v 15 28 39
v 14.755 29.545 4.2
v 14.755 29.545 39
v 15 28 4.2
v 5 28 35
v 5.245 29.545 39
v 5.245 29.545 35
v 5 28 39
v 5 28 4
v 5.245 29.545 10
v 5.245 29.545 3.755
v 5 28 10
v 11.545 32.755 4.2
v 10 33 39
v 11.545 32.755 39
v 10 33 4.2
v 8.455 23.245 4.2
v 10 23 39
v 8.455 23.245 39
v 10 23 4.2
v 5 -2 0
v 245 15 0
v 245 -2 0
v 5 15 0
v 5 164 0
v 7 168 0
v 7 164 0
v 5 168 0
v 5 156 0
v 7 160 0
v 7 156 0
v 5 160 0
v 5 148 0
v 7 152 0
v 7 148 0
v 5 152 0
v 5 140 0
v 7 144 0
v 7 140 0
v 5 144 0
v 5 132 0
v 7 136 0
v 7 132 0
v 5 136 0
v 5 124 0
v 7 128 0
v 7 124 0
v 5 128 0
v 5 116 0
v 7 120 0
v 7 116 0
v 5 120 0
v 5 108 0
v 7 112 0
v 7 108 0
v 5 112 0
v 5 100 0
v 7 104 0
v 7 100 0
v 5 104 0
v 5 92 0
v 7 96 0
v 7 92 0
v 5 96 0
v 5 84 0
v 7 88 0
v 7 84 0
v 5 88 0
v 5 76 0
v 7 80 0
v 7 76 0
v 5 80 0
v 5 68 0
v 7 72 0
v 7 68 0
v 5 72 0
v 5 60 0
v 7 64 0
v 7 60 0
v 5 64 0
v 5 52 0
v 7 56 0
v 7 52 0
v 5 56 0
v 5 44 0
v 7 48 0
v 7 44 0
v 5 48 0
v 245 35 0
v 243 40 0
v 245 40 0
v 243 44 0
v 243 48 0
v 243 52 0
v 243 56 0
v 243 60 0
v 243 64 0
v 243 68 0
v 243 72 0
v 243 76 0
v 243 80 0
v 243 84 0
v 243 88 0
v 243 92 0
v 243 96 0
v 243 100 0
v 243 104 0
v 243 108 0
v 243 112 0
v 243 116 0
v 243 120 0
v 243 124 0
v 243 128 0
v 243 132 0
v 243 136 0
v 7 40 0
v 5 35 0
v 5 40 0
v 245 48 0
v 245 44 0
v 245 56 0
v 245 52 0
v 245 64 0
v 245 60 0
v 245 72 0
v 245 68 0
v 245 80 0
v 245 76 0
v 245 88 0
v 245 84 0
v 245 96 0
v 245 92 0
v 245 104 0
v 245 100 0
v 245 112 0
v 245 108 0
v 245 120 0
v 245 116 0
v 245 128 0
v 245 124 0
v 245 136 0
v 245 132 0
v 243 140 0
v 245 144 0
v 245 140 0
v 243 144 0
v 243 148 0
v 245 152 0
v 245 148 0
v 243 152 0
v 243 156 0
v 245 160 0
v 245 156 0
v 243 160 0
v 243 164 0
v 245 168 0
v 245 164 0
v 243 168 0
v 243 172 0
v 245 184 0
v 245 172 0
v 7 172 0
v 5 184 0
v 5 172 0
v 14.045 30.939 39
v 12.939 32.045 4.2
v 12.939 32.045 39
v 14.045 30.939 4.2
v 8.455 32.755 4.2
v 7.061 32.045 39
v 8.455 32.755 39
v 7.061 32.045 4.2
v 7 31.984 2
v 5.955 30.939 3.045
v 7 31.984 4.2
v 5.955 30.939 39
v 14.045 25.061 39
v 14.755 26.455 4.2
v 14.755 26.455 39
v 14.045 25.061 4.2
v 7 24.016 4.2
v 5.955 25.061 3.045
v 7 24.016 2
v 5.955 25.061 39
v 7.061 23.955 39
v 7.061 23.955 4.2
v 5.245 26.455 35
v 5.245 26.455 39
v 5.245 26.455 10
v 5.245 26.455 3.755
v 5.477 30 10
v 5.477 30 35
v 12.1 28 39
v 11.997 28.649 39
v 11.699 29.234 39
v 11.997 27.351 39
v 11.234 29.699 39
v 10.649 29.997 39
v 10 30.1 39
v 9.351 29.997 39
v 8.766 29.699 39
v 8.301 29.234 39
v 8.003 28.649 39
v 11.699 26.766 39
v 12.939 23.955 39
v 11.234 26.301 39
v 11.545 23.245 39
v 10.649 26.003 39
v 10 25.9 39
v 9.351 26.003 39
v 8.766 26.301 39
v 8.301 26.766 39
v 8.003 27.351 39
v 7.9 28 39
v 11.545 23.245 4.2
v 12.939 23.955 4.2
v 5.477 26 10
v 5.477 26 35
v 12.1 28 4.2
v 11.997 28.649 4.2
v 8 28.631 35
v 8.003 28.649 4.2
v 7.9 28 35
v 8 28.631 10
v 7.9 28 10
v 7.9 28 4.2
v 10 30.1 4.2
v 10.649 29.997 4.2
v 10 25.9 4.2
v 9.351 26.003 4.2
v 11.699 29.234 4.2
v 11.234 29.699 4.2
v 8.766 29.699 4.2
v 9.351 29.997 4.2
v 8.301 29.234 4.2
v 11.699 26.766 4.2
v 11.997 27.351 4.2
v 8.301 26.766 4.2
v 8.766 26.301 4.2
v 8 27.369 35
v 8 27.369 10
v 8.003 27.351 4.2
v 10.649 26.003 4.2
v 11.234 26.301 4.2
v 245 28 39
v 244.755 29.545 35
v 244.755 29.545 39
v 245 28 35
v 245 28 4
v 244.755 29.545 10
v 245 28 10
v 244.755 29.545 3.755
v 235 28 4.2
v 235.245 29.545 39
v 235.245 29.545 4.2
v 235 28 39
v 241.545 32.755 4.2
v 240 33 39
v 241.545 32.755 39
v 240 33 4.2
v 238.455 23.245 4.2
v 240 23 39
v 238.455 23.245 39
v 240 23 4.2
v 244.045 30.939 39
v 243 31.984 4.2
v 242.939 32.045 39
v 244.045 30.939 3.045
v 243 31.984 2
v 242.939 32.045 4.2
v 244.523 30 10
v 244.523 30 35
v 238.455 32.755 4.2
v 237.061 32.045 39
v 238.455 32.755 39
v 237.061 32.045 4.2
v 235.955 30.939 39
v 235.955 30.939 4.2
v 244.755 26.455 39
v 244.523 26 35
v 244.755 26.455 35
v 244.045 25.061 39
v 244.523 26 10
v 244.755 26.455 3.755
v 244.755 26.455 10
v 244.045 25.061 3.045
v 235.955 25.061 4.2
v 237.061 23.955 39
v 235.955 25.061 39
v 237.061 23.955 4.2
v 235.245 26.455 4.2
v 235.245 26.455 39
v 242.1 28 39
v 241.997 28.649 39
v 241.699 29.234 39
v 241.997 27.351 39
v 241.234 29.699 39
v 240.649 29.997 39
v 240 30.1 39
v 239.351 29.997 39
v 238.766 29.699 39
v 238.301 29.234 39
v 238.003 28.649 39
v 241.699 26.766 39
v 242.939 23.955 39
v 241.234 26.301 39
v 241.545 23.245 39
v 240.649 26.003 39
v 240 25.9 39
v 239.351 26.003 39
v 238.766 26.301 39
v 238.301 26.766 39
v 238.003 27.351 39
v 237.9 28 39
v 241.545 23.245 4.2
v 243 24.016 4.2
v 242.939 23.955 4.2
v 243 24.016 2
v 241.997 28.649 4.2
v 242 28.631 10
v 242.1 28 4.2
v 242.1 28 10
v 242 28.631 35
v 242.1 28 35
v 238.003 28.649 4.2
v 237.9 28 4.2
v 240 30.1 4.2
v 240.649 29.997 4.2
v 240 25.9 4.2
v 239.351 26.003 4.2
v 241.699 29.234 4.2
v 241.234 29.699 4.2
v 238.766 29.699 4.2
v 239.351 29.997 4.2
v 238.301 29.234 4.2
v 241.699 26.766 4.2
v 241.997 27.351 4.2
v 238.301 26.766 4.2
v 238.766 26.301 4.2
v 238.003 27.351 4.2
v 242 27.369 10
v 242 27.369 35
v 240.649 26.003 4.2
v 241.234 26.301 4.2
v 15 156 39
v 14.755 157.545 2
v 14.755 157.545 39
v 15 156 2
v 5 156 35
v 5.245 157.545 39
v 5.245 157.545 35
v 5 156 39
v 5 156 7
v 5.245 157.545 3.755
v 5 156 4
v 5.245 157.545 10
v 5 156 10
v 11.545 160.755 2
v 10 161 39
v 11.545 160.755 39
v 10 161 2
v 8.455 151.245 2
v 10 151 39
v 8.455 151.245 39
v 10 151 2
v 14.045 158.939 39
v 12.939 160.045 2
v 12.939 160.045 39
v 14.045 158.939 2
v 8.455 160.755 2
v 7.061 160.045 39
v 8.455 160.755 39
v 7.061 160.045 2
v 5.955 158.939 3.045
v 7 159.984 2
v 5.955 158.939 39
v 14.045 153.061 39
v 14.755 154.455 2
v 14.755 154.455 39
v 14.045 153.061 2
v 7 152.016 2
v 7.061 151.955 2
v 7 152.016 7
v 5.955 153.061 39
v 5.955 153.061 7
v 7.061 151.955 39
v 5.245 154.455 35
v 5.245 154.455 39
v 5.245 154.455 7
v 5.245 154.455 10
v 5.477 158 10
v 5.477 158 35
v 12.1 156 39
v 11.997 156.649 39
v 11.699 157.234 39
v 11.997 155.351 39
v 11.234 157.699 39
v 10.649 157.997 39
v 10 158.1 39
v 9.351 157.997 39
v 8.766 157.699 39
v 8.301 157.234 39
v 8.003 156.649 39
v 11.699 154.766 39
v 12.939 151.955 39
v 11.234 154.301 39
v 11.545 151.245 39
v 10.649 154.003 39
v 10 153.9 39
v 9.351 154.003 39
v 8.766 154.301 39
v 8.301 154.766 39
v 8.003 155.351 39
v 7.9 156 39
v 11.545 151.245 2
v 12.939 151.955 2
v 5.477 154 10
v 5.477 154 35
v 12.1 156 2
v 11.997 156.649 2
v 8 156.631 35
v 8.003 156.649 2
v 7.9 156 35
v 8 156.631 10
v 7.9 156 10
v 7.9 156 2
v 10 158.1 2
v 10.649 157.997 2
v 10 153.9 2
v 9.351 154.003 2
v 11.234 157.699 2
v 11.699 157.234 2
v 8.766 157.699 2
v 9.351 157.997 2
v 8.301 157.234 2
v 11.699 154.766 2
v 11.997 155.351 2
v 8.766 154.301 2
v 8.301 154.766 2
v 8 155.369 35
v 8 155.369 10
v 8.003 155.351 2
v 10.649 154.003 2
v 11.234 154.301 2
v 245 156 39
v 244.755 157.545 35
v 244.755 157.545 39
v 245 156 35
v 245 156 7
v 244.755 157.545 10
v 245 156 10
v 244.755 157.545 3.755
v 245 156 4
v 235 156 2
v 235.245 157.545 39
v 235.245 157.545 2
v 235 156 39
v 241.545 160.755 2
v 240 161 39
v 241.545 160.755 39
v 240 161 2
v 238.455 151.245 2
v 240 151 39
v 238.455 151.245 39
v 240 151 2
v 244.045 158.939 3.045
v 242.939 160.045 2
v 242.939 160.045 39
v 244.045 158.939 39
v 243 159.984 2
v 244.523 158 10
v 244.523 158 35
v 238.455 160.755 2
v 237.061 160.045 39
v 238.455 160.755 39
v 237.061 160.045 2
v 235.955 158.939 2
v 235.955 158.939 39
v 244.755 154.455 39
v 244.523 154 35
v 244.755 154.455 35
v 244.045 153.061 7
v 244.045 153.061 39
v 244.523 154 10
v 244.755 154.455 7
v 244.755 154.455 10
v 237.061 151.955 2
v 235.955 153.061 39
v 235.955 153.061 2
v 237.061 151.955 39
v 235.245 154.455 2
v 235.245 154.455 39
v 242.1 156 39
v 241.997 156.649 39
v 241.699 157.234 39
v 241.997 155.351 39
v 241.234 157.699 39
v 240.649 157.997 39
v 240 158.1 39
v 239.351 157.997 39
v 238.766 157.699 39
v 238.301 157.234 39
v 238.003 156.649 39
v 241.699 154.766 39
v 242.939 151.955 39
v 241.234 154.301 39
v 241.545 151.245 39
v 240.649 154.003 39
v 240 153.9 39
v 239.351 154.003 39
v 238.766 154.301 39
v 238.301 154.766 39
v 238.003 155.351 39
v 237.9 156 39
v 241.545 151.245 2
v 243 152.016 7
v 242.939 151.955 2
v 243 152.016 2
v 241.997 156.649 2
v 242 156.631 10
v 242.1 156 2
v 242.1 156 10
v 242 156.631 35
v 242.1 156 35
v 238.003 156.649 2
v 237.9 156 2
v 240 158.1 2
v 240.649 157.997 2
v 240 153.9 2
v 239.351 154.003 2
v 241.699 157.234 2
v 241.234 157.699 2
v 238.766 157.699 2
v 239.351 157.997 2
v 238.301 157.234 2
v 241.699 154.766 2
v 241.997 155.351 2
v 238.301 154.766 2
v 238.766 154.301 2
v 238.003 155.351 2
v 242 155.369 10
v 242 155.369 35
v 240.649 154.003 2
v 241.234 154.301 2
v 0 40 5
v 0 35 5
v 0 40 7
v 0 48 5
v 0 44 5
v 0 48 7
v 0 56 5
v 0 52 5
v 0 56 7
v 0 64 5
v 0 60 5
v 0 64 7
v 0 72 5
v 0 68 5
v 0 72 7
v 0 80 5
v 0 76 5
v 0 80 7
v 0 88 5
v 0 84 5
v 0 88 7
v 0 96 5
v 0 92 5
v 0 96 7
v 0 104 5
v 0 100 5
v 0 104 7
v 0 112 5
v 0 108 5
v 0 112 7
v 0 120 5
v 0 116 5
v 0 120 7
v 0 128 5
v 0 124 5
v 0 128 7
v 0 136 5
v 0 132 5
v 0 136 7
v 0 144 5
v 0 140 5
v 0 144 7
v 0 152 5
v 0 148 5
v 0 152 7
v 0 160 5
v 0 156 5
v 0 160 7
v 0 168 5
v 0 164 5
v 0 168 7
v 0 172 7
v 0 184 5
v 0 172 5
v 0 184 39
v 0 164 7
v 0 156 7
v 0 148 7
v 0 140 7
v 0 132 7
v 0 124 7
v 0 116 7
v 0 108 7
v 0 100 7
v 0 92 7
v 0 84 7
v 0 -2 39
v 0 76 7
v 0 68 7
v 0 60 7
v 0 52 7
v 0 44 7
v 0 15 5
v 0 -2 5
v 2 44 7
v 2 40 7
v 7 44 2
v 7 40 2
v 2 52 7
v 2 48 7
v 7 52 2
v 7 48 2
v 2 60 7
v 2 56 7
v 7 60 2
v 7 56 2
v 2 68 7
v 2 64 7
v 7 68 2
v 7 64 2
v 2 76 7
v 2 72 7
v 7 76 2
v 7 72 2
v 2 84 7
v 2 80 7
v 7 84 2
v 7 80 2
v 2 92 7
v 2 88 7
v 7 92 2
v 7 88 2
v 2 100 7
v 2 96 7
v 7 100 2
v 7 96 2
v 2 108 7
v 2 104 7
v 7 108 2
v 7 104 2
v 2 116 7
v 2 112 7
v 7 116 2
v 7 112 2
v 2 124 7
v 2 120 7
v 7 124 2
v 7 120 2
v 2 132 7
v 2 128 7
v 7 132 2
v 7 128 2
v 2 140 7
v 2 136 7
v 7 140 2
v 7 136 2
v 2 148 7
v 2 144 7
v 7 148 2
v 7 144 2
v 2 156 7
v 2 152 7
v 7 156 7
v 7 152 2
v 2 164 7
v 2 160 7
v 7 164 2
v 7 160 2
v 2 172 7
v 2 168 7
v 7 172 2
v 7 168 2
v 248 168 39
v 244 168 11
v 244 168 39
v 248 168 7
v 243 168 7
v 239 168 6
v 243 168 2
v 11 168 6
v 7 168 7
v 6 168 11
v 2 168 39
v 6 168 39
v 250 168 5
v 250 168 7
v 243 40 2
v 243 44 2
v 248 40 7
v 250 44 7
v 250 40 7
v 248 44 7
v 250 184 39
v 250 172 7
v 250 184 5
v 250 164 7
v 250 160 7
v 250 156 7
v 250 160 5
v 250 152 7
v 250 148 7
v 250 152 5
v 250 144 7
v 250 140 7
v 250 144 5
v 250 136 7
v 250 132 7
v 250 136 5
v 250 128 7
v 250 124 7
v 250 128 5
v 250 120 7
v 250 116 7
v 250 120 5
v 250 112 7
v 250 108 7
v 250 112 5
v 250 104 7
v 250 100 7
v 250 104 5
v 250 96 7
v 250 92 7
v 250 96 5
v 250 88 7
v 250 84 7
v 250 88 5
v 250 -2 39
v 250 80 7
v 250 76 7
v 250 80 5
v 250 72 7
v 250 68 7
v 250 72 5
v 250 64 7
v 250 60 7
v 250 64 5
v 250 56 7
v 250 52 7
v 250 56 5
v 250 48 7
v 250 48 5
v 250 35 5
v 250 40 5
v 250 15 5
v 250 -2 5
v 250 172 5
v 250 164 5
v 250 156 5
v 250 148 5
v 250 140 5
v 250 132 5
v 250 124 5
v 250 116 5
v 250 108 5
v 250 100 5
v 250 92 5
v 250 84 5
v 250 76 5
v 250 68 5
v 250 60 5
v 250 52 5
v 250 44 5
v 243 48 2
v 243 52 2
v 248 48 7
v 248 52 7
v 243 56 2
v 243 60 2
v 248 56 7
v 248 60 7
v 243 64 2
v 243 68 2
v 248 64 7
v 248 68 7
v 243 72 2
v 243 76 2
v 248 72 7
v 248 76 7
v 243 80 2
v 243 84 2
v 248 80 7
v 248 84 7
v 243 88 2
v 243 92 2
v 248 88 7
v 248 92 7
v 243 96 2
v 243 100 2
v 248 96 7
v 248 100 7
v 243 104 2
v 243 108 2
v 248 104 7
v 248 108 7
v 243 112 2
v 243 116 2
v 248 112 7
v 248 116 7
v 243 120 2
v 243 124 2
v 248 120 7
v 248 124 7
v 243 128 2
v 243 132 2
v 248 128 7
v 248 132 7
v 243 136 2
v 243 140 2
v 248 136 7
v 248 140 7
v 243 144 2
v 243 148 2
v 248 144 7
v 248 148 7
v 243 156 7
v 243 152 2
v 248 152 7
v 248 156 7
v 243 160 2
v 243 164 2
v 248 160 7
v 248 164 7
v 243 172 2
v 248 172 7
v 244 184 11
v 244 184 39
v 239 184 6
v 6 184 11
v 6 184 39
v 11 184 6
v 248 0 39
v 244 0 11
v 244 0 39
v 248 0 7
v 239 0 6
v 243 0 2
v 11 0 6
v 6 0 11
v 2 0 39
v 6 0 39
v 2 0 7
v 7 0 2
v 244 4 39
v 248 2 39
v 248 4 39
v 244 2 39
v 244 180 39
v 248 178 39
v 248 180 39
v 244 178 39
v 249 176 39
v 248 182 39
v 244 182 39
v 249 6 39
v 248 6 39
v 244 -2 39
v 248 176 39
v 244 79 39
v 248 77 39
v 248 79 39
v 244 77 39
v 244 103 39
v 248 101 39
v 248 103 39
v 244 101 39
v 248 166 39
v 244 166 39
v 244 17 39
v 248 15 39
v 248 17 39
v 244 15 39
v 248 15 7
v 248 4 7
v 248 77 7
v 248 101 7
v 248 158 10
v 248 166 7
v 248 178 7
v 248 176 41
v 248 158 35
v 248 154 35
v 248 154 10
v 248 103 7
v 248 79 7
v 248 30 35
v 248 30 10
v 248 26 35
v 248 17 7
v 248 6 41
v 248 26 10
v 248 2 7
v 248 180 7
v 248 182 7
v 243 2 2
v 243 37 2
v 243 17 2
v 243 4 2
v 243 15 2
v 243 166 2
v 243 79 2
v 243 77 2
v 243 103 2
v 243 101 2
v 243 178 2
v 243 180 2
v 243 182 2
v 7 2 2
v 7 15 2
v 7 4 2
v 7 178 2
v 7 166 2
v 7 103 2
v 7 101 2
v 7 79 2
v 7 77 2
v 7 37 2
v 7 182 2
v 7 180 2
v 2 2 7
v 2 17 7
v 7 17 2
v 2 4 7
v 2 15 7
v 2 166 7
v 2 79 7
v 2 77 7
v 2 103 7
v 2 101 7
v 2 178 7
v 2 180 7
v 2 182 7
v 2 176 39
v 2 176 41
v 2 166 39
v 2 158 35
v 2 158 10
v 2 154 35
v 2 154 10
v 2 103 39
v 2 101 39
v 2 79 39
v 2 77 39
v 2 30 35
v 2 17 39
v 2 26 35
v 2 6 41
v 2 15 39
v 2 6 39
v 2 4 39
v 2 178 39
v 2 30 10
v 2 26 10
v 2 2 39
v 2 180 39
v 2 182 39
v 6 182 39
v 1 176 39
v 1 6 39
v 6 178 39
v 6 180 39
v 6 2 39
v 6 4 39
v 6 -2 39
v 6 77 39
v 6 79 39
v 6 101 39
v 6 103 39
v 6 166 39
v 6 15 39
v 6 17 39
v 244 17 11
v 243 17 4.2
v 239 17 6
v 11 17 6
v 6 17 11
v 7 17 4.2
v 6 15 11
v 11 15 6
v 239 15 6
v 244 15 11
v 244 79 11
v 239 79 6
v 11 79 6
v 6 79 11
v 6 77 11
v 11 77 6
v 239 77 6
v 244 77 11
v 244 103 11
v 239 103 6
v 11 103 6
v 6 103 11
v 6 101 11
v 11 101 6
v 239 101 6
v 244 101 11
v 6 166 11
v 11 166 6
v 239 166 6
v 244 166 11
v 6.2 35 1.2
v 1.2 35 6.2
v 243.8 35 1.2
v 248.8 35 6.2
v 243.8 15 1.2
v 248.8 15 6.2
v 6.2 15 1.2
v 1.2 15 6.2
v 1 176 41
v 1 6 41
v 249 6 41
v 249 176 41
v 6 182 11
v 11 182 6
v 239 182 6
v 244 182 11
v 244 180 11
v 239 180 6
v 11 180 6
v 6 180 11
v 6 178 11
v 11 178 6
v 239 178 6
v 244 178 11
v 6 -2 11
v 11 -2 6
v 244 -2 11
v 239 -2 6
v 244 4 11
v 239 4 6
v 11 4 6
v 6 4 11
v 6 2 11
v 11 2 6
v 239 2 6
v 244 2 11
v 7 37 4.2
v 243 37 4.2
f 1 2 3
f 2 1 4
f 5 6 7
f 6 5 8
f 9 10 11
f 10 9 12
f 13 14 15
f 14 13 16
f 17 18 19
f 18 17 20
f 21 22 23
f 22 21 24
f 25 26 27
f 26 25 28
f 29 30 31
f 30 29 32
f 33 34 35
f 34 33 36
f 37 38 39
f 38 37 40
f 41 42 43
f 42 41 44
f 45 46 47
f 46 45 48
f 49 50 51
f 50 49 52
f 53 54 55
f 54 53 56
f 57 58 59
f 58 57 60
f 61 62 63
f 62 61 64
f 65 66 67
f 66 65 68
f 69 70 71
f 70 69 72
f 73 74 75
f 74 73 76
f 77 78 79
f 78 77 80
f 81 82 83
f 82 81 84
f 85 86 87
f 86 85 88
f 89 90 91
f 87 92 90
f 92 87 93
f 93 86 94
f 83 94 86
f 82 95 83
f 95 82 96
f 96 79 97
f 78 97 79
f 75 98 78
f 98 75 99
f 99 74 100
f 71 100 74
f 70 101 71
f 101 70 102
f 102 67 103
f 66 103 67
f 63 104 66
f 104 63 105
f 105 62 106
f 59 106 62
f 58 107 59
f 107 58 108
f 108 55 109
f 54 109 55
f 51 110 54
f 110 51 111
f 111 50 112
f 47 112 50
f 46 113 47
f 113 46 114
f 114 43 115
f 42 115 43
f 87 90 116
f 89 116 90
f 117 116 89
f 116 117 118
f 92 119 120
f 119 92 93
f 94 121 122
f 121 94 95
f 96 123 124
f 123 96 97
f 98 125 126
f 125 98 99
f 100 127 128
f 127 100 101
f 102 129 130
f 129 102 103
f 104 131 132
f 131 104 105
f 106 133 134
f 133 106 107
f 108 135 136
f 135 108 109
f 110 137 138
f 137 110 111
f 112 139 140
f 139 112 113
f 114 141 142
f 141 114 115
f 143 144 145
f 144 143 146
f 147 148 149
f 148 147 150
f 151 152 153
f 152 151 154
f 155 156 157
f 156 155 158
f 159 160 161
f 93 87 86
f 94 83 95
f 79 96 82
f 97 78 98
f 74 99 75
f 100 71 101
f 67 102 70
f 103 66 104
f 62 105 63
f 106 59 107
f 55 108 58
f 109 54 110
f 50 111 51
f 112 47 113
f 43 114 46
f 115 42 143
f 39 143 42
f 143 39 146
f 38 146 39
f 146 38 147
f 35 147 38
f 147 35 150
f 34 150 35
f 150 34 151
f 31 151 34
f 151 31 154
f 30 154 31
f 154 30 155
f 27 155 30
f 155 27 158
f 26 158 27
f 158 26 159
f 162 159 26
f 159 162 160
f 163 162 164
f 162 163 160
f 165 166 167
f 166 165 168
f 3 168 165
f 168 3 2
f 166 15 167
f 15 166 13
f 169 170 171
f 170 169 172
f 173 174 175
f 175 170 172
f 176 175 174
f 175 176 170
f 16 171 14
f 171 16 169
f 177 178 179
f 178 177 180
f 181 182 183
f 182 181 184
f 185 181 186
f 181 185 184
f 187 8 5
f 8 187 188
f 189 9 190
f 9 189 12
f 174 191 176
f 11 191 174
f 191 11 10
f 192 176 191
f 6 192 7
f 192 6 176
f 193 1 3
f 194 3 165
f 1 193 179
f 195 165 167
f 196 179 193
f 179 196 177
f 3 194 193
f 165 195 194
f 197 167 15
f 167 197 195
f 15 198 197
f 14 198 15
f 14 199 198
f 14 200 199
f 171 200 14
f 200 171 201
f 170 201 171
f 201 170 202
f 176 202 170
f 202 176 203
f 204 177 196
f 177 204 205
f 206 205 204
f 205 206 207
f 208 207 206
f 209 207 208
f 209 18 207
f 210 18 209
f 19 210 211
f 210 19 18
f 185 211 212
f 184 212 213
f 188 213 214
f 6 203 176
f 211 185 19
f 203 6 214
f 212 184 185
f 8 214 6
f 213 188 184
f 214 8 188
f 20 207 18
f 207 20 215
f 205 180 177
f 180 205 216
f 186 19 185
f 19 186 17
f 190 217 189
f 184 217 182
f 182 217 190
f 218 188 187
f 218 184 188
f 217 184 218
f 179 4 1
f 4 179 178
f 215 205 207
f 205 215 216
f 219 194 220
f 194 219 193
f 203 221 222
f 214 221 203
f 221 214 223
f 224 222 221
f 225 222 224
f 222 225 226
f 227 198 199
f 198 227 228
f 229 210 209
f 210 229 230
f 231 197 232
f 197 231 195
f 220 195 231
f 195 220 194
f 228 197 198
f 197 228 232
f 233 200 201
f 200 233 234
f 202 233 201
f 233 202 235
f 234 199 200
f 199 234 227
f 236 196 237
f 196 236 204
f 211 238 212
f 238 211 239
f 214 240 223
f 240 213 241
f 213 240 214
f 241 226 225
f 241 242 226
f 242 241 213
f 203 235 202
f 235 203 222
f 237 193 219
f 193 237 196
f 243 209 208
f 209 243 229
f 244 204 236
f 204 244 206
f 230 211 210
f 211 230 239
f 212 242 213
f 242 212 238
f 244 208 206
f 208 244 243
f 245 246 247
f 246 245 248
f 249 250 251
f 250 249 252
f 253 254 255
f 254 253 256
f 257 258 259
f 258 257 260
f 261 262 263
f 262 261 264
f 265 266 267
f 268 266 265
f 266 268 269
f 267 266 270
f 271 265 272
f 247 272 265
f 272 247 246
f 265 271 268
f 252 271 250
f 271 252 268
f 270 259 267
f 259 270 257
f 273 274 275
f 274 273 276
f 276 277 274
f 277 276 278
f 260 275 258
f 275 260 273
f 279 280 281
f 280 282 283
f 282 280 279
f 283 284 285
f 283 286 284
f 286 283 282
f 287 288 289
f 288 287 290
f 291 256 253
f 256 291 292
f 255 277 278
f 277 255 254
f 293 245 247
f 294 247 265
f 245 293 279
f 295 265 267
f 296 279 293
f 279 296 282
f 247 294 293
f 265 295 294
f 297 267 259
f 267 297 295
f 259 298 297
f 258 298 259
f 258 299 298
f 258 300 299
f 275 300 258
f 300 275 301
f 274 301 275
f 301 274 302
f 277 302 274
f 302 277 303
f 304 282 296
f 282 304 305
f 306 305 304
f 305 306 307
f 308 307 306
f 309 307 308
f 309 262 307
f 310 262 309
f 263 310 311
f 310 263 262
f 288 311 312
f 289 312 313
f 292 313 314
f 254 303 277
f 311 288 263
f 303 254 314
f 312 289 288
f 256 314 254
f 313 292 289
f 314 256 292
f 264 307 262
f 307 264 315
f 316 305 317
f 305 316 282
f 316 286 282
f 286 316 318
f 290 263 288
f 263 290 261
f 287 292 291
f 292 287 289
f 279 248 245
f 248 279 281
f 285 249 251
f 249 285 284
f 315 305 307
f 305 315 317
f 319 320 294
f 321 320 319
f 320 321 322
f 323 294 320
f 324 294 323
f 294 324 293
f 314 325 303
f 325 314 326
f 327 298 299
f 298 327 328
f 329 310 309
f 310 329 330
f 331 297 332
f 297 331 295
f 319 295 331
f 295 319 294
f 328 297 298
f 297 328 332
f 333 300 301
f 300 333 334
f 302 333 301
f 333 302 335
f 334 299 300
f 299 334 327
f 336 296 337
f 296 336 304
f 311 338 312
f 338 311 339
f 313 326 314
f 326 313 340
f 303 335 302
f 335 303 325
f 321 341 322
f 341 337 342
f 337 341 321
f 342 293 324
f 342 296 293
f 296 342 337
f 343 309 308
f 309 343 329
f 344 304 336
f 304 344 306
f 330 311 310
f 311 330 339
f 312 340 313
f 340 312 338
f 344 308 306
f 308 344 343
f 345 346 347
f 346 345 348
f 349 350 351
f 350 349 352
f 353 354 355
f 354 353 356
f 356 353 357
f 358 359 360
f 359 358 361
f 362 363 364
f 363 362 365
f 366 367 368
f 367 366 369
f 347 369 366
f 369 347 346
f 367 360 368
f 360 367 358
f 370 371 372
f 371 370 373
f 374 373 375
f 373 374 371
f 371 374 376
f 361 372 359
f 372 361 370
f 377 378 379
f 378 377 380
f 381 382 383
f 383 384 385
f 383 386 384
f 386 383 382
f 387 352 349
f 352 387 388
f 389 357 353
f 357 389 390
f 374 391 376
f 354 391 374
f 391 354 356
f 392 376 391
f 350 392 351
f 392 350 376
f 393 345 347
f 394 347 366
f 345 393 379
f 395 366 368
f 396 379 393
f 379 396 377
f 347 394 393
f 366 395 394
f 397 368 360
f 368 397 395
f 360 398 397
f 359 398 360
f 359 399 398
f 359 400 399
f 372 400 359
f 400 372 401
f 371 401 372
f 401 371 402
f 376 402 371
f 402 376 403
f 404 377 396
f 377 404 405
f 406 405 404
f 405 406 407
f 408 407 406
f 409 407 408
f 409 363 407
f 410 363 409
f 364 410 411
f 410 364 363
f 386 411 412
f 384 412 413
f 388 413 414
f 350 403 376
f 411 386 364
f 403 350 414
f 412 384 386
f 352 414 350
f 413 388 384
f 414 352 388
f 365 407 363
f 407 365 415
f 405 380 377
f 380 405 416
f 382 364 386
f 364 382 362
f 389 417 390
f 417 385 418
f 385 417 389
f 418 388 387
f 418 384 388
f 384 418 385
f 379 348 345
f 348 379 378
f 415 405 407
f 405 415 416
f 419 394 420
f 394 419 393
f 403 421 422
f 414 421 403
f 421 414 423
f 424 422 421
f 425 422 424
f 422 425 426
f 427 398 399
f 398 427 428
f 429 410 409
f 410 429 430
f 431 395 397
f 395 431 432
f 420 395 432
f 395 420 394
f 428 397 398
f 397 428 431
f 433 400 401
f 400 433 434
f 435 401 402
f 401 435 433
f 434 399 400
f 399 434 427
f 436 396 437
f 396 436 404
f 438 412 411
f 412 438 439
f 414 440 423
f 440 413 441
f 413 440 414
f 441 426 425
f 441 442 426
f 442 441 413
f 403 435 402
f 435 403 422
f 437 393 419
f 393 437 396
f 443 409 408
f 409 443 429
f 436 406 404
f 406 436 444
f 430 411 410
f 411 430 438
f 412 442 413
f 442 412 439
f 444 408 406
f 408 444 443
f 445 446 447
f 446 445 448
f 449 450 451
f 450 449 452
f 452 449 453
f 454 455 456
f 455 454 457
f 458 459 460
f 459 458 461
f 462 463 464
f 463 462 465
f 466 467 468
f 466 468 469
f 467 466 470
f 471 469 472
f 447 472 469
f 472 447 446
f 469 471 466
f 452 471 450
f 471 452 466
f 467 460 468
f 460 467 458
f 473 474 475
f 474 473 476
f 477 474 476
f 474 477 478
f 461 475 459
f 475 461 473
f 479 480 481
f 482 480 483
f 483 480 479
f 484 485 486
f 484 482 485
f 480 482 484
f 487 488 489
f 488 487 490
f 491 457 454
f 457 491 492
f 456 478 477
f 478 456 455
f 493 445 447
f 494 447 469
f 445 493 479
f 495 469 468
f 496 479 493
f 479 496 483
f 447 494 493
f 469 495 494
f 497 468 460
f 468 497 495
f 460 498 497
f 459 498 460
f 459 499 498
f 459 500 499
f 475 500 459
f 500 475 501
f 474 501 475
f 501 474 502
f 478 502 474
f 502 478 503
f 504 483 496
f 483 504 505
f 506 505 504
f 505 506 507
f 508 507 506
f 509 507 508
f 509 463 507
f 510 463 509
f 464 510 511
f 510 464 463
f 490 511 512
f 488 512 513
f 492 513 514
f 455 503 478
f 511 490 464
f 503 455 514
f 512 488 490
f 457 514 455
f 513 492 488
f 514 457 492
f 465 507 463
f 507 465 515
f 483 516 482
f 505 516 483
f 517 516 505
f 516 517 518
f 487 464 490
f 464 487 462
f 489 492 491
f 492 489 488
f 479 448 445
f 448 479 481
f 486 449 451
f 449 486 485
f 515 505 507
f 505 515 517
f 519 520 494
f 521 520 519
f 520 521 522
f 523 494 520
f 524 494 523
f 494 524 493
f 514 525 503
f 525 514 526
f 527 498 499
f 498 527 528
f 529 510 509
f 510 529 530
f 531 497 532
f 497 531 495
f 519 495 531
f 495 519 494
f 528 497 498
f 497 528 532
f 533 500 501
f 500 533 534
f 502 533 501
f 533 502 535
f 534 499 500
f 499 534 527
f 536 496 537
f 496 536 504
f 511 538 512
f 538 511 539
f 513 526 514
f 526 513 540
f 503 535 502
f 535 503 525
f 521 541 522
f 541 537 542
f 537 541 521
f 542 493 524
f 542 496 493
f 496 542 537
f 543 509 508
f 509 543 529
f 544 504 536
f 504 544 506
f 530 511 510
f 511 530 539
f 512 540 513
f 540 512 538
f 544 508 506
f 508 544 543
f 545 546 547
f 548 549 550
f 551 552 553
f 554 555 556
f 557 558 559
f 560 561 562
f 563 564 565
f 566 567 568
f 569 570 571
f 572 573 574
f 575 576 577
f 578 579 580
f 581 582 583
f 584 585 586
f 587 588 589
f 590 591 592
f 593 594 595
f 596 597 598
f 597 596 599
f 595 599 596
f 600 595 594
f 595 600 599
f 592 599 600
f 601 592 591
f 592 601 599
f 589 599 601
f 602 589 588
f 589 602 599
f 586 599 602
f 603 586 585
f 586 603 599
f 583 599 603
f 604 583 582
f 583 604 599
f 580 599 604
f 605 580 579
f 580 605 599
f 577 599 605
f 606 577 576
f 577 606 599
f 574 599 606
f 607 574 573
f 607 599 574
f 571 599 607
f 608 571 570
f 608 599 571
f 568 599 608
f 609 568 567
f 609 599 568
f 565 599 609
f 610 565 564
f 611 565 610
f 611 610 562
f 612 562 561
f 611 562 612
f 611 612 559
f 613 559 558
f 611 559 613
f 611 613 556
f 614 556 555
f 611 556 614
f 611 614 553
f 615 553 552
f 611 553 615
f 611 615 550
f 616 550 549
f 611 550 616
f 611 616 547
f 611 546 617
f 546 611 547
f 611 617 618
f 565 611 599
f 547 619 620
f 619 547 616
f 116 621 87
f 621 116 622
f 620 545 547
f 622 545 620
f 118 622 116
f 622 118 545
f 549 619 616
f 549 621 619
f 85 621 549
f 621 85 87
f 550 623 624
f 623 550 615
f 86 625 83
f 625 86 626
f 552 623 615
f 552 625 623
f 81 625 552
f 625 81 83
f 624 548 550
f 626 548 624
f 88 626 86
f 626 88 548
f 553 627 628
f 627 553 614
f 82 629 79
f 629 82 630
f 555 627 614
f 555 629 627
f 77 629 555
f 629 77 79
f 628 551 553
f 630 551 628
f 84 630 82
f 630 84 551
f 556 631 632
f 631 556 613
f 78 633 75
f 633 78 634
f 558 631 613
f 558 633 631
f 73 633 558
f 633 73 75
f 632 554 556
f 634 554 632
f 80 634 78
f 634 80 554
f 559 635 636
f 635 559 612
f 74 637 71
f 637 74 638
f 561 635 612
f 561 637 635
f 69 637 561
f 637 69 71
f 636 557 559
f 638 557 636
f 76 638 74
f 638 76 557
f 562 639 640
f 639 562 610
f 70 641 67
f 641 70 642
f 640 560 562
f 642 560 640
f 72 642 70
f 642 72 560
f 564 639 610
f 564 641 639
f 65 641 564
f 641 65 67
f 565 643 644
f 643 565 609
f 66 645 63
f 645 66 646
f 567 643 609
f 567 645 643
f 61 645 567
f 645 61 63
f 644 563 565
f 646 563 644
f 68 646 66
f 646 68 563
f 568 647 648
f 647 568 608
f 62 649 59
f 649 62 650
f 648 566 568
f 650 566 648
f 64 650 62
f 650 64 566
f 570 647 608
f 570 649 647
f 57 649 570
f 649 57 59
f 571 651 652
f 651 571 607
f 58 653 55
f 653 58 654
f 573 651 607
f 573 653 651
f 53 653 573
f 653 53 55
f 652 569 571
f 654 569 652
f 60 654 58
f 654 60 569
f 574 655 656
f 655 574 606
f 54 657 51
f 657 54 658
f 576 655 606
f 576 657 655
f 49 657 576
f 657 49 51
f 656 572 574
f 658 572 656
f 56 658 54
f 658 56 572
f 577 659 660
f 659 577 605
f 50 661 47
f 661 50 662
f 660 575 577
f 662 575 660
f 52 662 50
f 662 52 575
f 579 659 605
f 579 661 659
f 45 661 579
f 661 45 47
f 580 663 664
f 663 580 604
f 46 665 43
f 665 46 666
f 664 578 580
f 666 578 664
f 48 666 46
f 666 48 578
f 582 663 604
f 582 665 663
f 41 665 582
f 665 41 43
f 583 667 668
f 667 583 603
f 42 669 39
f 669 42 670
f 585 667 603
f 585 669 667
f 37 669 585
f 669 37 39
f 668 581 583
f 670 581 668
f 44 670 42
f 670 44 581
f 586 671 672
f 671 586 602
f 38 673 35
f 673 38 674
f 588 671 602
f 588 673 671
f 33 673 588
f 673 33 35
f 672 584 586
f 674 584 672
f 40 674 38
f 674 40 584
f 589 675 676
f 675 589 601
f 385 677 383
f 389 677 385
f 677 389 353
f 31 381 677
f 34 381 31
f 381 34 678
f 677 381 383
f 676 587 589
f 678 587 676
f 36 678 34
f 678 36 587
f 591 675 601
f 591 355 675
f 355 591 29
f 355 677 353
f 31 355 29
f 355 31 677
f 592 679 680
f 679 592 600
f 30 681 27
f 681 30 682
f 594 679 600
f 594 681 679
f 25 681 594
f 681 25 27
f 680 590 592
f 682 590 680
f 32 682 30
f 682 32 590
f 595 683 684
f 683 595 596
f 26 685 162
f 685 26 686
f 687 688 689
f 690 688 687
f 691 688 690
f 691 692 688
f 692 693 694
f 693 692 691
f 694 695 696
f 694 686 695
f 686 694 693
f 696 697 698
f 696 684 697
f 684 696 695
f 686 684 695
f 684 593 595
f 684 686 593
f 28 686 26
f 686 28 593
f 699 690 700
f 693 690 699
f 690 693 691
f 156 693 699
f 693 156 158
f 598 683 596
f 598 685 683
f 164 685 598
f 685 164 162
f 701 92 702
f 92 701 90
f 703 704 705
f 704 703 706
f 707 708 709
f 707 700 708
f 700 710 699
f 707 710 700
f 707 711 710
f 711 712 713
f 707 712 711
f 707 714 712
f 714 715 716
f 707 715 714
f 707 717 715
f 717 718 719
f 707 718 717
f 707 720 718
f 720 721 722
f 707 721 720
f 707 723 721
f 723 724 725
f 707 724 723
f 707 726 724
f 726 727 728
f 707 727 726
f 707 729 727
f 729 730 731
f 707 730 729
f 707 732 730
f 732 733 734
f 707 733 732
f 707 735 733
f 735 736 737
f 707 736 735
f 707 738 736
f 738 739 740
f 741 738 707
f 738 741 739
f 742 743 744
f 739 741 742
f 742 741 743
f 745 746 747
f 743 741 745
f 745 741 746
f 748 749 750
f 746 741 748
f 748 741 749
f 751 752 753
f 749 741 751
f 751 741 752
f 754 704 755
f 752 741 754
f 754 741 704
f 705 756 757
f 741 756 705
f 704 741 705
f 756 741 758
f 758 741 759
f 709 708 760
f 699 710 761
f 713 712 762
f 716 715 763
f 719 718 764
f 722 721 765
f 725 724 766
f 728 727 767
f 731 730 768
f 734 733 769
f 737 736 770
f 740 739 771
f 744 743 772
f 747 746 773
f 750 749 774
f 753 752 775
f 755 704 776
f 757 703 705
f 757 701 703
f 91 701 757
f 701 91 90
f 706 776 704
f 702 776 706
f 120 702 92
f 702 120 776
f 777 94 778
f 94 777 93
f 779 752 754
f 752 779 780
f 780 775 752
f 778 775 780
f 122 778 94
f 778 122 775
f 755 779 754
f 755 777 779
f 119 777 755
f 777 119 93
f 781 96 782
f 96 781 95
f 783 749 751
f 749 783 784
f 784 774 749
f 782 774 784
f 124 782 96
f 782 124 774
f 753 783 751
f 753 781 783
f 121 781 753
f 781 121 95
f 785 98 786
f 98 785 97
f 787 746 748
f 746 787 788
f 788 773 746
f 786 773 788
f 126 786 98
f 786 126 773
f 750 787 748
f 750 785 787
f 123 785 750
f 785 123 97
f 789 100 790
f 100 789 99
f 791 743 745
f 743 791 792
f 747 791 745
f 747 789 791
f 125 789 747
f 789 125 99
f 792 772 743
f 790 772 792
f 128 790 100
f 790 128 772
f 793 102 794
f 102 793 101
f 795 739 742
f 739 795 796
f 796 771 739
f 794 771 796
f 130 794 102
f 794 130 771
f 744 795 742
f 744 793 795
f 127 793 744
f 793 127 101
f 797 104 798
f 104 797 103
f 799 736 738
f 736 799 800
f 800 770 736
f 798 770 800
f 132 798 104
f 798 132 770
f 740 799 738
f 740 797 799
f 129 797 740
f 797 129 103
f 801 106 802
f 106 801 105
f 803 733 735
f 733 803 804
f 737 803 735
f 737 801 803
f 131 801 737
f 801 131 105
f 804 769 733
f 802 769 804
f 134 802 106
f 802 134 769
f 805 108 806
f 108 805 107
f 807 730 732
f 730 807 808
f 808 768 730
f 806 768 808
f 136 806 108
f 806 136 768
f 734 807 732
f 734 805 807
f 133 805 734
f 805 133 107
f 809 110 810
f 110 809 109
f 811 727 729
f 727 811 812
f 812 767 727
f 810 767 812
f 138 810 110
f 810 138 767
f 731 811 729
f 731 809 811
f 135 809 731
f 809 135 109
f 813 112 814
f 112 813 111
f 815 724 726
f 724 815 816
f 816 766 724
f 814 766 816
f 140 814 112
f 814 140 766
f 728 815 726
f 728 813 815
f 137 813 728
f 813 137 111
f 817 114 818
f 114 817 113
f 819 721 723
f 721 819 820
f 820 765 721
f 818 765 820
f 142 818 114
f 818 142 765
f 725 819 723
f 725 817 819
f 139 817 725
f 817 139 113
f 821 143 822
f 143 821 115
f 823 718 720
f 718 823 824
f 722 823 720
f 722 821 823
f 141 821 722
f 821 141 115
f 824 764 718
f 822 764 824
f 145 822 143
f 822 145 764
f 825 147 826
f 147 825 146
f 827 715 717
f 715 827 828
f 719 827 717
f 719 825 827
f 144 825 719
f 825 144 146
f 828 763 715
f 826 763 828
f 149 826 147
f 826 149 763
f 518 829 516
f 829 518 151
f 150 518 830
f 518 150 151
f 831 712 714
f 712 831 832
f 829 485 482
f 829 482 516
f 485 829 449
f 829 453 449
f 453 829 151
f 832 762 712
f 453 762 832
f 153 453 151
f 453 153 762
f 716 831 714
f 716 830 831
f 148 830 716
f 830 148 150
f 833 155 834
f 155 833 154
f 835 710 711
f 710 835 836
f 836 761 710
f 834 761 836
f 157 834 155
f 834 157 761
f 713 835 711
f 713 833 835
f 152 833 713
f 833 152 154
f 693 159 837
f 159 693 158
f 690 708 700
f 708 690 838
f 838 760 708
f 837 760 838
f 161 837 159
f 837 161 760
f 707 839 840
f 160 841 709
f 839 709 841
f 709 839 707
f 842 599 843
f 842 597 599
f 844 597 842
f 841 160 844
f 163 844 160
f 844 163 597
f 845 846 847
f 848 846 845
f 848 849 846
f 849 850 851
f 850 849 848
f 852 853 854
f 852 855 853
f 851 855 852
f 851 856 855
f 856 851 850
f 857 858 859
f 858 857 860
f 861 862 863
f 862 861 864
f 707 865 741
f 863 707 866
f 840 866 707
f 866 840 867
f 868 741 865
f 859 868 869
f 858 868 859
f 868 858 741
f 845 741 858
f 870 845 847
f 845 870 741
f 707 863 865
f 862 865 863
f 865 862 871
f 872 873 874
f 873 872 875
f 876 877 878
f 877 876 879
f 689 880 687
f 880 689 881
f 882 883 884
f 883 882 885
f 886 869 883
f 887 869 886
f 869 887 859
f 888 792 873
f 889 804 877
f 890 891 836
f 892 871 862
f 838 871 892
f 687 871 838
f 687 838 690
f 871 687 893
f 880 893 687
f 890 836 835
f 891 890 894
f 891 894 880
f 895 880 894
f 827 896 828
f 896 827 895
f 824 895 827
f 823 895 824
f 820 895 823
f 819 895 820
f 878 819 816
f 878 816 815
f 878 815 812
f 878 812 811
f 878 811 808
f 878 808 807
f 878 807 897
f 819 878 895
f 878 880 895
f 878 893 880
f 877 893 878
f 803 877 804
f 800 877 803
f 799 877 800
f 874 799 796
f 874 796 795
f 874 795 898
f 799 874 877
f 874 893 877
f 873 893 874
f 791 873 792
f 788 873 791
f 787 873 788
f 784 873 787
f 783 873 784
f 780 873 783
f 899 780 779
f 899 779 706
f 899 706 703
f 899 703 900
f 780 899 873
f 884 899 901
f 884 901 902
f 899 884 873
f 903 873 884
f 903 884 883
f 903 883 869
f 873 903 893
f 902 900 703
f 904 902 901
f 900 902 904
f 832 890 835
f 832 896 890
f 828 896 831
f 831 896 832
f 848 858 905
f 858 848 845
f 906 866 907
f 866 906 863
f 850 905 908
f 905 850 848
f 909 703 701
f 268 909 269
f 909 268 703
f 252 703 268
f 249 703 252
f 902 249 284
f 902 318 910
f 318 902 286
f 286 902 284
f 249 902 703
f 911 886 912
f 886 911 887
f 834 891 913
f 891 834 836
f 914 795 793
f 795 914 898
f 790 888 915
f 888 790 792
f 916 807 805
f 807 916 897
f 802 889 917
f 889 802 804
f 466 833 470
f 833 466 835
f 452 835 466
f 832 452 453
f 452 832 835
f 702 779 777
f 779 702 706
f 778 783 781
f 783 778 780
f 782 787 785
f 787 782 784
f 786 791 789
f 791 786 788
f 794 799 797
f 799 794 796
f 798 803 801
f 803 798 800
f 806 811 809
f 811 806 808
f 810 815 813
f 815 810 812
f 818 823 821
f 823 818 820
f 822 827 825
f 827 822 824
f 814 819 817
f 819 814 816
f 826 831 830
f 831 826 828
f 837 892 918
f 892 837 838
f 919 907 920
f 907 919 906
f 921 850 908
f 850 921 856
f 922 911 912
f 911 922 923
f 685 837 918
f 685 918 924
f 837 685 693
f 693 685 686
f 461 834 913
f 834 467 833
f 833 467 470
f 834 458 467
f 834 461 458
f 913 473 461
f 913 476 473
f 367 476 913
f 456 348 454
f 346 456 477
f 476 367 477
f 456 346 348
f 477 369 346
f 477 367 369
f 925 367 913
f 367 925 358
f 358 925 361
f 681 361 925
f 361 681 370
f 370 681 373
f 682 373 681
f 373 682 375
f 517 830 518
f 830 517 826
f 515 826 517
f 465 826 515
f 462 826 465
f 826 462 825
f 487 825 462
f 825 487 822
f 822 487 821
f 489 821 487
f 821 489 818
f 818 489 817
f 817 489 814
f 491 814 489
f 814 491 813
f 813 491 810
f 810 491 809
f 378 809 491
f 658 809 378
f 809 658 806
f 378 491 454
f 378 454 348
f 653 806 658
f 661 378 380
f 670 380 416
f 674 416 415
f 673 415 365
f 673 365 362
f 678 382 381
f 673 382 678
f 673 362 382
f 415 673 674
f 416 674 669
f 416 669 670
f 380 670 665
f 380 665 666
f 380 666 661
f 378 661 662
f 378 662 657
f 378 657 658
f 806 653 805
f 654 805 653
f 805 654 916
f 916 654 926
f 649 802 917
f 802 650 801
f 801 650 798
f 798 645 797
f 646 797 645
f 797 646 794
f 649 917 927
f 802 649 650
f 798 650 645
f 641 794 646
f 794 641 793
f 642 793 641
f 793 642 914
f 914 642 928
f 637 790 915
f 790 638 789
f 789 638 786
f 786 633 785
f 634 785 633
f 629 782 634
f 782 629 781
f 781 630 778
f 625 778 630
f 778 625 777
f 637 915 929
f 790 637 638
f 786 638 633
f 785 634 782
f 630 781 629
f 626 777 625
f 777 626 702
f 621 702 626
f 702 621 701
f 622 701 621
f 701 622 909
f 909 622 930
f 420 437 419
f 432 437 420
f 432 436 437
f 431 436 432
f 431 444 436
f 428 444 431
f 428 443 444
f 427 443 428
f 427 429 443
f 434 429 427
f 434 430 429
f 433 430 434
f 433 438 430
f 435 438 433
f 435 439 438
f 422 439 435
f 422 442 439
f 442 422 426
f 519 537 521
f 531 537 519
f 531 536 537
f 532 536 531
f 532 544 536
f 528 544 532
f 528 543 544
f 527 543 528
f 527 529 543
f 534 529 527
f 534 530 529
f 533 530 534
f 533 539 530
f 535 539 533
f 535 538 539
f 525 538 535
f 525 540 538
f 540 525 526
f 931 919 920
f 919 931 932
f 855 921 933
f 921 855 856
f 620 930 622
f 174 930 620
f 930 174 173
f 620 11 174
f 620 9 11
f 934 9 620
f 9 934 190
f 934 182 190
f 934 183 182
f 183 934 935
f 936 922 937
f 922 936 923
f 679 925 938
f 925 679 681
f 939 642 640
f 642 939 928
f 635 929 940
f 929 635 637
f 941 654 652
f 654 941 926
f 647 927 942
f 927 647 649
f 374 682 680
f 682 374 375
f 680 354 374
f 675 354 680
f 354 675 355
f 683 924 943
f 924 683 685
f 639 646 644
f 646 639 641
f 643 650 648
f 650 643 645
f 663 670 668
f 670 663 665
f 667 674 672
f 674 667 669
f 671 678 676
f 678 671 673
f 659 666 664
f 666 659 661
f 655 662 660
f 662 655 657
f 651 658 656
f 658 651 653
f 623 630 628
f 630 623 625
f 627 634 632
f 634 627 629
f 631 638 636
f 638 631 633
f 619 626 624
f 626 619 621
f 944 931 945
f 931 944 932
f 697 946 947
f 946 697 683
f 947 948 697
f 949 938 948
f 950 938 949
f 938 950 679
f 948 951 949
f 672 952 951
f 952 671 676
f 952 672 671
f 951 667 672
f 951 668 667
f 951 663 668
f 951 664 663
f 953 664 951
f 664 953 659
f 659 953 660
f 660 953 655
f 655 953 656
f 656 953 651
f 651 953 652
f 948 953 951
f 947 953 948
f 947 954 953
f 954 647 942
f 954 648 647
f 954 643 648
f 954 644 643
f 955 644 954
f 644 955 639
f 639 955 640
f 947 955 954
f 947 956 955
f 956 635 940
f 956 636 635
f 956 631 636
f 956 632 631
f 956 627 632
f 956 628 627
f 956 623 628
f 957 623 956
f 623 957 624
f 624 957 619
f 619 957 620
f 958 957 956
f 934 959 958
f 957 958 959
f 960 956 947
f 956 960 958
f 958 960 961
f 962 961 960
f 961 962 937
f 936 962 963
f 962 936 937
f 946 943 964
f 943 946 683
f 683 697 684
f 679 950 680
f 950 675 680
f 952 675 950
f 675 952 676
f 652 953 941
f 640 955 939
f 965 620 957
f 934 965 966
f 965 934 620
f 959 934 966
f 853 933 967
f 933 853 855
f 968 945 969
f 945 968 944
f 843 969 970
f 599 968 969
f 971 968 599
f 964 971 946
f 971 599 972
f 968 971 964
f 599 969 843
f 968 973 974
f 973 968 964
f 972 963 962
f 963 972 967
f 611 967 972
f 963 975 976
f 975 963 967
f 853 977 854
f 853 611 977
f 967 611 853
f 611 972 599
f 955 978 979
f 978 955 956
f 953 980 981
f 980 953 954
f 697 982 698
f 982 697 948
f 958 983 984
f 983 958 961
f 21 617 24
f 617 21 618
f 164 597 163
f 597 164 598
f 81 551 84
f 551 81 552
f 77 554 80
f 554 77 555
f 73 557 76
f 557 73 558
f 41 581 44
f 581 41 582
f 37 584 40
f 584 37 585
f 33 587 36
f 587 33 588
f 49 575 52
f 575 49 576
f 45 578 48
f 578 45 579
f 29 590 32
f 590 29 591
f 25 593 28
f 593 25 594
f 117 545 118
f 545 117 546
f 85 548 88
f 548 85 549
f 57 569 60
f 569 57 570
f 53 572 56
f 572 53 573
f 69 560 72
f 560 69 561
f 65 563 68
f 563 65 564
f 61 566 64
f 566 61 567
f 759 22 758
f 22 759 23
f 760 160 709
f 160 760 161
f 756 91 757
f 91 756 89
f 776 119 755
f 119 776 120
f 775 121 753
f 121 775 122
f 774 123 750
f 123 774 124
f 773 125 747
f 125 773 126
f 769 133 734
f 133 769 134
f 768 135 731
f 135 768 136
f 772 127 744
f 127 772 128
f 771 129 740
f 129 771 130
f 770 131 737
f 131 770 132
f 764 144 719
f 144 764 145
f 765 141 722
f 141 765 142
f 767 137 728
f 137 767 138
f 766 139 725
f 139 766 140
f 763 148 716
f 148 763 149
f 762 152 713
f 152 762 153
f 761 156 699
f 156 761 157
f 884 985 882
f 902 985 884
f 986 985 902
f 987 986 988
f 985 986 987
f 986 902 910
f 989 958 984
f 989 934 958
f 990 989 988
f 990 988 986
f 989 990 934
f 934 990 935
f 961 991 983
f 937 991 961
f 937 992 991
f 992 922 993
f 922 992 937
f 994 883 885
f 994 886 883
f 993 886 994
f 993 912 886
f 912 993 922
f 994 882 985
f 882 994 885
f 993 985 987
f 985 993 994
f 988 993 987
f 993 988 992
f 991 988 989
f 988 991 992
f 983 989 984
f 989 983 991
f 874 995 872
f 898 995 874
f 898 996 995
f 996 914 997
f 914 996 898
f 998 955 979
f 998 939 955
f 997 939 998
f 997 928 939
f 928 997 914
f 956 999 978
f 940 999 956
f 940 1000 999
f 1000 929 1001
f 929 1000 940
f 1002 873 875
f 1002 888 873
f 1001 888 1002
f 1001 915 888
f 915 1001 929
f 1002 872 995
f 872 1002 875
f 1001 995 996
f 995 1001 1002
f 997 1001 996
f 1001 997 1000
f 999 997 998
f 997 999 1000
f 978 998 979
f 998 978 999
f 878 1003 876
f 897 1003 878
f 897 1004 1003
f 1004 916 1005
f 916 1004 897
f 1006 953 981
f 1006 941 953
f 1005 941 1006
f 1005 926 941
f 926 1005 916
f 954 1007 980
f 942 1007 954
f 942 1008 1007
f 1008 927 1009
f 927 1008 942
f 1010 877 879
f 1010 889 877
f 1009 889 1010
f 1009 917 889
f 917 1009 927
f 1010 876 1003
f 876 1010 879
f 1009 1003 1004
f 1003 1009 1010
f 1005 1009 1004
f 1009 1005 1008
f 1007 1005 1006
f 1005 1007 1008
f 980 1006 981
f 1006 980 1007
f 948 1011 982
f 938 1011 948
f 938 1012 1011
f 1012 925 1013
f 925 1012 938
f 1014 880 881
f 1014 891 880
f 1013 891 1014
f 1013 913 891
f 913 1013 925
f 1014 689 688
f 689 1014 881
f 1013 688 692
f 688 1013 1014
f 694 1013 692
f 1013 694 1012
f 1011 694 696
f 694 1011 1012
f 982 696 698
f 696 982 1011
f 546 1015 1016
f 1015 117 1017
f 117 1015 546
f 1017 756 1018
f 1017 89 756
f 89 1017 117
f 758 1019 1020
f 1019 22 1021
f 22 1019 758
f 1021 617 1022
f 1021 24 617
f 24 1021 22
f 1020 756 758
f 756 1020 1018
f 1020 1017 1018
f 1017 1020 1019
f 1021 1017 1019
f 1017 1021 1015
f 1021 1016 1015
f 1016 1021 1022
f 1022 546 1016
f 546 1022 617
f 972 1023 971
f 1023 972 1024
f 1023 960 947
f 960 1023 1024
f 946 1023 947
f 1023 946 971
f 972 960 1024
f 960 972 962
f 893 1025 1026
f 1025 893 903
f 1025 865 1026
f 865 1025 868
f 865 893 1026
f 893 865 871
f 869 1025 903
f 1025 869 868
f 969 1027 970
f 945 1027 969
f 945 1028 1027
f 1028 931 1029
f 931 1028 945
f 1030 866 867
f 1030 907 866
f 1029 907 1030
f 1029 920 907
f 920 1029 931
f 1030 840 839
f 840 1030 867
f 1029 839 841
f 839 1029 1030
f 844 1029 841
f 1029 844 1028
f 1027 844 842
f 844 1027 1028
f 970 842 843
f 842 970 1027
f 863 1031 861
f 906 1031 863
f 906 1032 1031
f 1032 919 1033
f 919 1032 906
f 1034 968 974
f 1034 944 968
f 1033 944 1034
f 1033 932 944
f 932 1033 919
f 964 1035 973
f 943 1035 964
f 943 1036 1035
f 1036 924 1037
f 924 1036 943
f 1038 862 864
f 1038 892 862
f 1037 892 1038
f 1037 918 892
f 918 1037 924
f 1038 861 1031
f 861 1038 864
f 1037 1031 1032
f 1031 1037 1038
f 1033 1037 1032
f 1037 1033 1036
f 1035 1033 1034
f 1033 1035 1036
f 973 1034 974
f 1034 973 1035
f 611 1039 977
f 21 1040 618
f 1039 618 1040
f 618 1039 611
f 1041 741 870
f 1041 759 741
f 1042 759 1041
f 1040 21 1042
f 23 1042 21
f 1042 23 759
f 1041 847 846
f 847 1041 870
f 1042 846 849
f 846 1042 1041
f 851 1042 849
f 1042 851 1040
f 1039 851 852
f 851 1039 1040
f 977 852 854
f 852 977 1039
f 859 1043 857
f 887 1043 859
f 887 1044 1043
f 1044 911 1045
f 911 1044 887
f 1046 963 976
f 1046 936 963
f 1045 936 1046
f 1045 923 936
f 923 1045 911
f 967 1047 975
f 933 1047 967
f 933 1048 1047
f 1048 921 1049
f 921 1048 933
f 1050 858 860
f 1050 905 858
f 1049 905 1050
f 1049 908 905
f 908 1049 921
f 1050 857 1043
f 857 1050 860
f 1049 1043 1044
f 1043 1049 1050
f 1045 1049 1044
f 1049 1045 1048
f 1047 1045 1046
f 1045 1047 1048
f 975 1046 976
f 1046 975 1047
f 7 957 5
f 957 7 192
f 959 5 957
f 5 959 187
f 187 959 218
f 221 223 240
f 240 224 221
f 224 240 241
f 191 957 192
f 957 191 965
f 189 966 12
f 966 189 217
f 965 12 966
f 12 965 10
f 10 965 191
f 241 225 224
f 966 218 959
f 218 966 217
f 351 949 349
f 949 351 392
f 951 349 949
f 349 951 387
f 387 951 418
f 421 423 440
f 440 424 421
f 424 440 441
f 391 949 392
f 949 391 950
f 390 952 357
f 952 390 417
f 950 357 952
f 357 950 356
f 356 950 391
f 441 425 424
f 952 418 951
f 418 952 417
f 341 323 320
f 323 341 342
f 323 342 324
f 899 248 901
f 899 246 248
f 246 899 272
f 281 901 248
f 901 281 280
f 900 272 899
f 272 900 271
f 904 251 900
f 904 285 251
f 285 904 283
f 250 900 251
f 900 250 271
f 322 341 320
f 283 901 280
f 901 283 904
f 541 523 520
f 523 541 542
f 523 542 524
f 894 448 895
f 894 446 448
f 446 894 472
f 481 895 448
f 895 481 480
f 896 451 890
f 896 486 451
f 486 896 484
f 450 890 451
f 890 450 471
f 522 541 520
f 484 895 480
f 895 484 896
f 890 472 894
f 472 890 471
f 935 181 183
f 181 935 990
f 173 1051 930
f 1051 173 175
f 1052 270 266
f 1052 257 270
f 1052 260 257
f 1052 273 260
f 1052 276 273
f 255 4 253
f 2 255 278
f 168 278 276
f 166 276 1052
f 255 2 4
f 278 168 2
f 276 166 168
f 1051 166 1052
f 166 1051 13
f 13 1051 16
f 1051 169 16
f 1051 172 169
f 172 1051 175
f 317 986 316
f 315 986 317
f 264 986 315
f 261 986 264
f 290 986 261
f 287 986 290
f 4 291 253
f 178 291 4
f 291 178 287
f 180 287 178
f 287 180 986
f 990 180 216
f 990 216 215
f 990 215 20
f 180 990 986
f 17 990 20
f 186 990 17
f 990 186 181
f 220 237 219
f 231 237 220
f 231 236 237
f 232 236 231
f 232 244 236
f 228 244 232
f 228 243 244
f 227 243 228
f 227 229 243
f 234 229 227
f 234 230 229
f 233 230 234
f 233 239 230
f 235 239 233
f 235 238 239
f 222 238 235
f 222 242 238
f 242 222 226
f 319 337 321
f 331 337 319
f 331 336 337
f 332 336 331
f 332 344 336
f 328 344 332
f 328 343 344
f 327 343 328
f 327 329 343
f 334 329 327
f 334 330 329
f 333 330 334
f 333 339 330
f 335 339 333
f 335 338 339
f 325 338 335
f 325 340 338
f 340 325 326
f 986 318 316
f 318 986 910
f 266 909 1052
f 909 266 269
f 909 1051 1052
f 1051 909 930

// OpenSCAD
$fn = 20;

thick = 2;
xmax = 250;
ymax = 180+thick;
zmax = 39;

edge=5;

//xmt = xmax + 2*thick;
//ymt = ymax + 2*thick;    

    
difference() {
    shell_top();

    //holes for screws pcb
    /*
    translate([20, 35,0])
        cylinder(4, 3.5, 3.5);
    translate([xmax-20,35,0])
        cylinder(4, 3.5, 3.5);
    translate([21.5,35+118,0])
        cylinder(4, 3.5, 3.5);
    translate([xmax-21.5,35+118,0])
        cylinder(4, 3.5, 3.5);
    */
    
    
    //bumper
    /*
    translate([25, 20, 0])
        cylinder(1, 1, 1);
    translate([xmax-25, 20,0])
        cylinder(1, 1, 1);
    translate([25, ymax-15, 0])
        cylinder(1, 1, 1);
    translate([xmax-25, ymax-15, 0])
        cylinder(1, 1, 1);
    */    
     //text("Sally-2");
    
}

module atarilogo() {
    translate([0,35,0])
        base_shape_a();
}

module ataritext() {
    linear_extrude(0.4)
        mirror([1,0,0])
        text("ATARI ", 16, "SF Atarian              System:style=Regular");

    translate([-45, 0, 0])
    linear_extrude(0.4)
        mirror([1,0,0])
    text("SALLY-2 ", 12, "SF Atarian System:style=Regular");
}

module base_shape_a() {
        rotate([90,0,0]) 
            linear_extrude(20)
                base_shape_2d_a(1.2);
}

module base_shape_2d_a(th) {
    polygon([/* [0, zmax], */ [0, edge], [edge,0], [xmax-edge, 0], [xmax, edge], /*[xmax, zmax],[xmax-th,zmax],*/ [xmax-th, edge+th], [xmax-edge-th, th],[edge+th, th], [th, edge+th]/*,[th, zmax]*/]);
}




module shell_top() {
   
//    atarilogo();
    
    difference(){
        base_shape();
        cubes_left();    
        cubes_right();
        atarilogo();
        
        //holes for screws case
        /*
        translate([edge+5,28,0])
            cylinder(4, 3.5, 3.5);
        translate([xmax-edge-5,28,0])
            cylinder(4, 3.5, 3.5);
        translate([edge+5,ymax-26,0])
            cylinder(4, 3.5, 3.5);
        translate([xmax-edge-5,ymax-26,0])
            cylinder(4, 3.5, 3.5);
        */
        


    }

    //clips left right
    translate([thick/2,3*thick,zmax-1])
        cube([thick/2,ymax-6*thick, 3]);
    translate([xmax-thick,3*thick,zmax-1])
        cube([thick/2,ymax-6*thick, 3]);


    translate([0, ymax+thick])
        base_shape_holder();
    translate([0, ymax-thick])
        base_shape_holder();
    translate([0, 0])
        base_shape_holder();
    translate([0, 0+2*thick])
        base_shape_holder();    


    
    translate([0, 26, 10])
        cube([8,4,25]);
    translate([0, ymax-28, 10])
        cube([8,4,25]);
    translate([xmax-edge-2*thick+1, 26, 10])
        cube([8,4,25]);
    translate([xmax-edge-2*thick+1, ymax-28, 10])
        cube([8,4,25]);
    
    translate([3.5*thick, 17, 1.2])
        cube([xmax-7*thick, 20, 3]);
    //feet, set PCB on top
    /*
    translate([20,35,0])
        foot(3, 22);
    translate([xmax-20,35,0])
        foot(3, 22);
        
    translate([21.5,35+118,0])
        foot(3, 22);
    translate([xmax-21.5,35+118,0])
        foot(3, 22);
    */
}




module base_shape() {
    translate([0, ymax+thick, 0])
        rotate([90,0,0]) 
            linear_extrude(ymax+thick)
                base_shape_2d(thick);

    //screws holding case together
    translate([edge+5,28,0])
        screw(2.5);
    translate([xmax-edge-5,28,0])
        screw(2.5);
    translate([edge+5,ymax-26,0])
        screw(2.5);
    translate([xmax-edge-5,ymax-26,0])
        screw(2.5);
    
    //reinforcement front
    translate([0, 17 ,0])
        base_shape_holder();    
    
    //reinforcement in the middle
    translate([0, ymax/2 - 12])
        base_shape_holder();    
    translate([0, ymax/2 + 12])
        base_shape_holder();    

    //reinforcement back
    translate([0, ymax-14 ,0])
        base_shape_holder();    

}

module base_shape_holder() {
    
    rotate([90,0,0])
    linear_extrude(thick)
        base_shape_2d(3*thick);

}

module base_shape_2d(th) {
    polygon([[0, zmax], [0, edge], [edge,0], [xmax-edge, 0], [xmax, edge], [xmax, zmax],[xmax-th,zmax], [xmax-th, edge+th], [xmax-edge-th, th],[edge+th, th], [th, edge+th],[th, zmax]]);
}


module cubes_left() {
    for(i = [40:8:ymax-14])
      translate([0, i, 0])
      cube([edge+thick, 4, edge+thick]);
}

module cubes_right() {
    for(i = [40:8:ymax-14])
      translate([xmax-edge-thick, i, 0])
      cube([edge+thick, 4, edge+thick]);
}
    
module screw(r) {    
    difference() {
        cylinder(zmax,r*2,r*2);
        translate([0,0,-1]);
            cylinder(zmax+2, 2.1, 2.1);
//        cylinder(5,6,6);
    }
}

module foot(r, h) {    
    difference() {
        cylinder(h,r*2,r*1.3);
            cylinder(h,r/2+0.1,r/2+0.1);
//        cylinder(5,6,6);
    }
}
